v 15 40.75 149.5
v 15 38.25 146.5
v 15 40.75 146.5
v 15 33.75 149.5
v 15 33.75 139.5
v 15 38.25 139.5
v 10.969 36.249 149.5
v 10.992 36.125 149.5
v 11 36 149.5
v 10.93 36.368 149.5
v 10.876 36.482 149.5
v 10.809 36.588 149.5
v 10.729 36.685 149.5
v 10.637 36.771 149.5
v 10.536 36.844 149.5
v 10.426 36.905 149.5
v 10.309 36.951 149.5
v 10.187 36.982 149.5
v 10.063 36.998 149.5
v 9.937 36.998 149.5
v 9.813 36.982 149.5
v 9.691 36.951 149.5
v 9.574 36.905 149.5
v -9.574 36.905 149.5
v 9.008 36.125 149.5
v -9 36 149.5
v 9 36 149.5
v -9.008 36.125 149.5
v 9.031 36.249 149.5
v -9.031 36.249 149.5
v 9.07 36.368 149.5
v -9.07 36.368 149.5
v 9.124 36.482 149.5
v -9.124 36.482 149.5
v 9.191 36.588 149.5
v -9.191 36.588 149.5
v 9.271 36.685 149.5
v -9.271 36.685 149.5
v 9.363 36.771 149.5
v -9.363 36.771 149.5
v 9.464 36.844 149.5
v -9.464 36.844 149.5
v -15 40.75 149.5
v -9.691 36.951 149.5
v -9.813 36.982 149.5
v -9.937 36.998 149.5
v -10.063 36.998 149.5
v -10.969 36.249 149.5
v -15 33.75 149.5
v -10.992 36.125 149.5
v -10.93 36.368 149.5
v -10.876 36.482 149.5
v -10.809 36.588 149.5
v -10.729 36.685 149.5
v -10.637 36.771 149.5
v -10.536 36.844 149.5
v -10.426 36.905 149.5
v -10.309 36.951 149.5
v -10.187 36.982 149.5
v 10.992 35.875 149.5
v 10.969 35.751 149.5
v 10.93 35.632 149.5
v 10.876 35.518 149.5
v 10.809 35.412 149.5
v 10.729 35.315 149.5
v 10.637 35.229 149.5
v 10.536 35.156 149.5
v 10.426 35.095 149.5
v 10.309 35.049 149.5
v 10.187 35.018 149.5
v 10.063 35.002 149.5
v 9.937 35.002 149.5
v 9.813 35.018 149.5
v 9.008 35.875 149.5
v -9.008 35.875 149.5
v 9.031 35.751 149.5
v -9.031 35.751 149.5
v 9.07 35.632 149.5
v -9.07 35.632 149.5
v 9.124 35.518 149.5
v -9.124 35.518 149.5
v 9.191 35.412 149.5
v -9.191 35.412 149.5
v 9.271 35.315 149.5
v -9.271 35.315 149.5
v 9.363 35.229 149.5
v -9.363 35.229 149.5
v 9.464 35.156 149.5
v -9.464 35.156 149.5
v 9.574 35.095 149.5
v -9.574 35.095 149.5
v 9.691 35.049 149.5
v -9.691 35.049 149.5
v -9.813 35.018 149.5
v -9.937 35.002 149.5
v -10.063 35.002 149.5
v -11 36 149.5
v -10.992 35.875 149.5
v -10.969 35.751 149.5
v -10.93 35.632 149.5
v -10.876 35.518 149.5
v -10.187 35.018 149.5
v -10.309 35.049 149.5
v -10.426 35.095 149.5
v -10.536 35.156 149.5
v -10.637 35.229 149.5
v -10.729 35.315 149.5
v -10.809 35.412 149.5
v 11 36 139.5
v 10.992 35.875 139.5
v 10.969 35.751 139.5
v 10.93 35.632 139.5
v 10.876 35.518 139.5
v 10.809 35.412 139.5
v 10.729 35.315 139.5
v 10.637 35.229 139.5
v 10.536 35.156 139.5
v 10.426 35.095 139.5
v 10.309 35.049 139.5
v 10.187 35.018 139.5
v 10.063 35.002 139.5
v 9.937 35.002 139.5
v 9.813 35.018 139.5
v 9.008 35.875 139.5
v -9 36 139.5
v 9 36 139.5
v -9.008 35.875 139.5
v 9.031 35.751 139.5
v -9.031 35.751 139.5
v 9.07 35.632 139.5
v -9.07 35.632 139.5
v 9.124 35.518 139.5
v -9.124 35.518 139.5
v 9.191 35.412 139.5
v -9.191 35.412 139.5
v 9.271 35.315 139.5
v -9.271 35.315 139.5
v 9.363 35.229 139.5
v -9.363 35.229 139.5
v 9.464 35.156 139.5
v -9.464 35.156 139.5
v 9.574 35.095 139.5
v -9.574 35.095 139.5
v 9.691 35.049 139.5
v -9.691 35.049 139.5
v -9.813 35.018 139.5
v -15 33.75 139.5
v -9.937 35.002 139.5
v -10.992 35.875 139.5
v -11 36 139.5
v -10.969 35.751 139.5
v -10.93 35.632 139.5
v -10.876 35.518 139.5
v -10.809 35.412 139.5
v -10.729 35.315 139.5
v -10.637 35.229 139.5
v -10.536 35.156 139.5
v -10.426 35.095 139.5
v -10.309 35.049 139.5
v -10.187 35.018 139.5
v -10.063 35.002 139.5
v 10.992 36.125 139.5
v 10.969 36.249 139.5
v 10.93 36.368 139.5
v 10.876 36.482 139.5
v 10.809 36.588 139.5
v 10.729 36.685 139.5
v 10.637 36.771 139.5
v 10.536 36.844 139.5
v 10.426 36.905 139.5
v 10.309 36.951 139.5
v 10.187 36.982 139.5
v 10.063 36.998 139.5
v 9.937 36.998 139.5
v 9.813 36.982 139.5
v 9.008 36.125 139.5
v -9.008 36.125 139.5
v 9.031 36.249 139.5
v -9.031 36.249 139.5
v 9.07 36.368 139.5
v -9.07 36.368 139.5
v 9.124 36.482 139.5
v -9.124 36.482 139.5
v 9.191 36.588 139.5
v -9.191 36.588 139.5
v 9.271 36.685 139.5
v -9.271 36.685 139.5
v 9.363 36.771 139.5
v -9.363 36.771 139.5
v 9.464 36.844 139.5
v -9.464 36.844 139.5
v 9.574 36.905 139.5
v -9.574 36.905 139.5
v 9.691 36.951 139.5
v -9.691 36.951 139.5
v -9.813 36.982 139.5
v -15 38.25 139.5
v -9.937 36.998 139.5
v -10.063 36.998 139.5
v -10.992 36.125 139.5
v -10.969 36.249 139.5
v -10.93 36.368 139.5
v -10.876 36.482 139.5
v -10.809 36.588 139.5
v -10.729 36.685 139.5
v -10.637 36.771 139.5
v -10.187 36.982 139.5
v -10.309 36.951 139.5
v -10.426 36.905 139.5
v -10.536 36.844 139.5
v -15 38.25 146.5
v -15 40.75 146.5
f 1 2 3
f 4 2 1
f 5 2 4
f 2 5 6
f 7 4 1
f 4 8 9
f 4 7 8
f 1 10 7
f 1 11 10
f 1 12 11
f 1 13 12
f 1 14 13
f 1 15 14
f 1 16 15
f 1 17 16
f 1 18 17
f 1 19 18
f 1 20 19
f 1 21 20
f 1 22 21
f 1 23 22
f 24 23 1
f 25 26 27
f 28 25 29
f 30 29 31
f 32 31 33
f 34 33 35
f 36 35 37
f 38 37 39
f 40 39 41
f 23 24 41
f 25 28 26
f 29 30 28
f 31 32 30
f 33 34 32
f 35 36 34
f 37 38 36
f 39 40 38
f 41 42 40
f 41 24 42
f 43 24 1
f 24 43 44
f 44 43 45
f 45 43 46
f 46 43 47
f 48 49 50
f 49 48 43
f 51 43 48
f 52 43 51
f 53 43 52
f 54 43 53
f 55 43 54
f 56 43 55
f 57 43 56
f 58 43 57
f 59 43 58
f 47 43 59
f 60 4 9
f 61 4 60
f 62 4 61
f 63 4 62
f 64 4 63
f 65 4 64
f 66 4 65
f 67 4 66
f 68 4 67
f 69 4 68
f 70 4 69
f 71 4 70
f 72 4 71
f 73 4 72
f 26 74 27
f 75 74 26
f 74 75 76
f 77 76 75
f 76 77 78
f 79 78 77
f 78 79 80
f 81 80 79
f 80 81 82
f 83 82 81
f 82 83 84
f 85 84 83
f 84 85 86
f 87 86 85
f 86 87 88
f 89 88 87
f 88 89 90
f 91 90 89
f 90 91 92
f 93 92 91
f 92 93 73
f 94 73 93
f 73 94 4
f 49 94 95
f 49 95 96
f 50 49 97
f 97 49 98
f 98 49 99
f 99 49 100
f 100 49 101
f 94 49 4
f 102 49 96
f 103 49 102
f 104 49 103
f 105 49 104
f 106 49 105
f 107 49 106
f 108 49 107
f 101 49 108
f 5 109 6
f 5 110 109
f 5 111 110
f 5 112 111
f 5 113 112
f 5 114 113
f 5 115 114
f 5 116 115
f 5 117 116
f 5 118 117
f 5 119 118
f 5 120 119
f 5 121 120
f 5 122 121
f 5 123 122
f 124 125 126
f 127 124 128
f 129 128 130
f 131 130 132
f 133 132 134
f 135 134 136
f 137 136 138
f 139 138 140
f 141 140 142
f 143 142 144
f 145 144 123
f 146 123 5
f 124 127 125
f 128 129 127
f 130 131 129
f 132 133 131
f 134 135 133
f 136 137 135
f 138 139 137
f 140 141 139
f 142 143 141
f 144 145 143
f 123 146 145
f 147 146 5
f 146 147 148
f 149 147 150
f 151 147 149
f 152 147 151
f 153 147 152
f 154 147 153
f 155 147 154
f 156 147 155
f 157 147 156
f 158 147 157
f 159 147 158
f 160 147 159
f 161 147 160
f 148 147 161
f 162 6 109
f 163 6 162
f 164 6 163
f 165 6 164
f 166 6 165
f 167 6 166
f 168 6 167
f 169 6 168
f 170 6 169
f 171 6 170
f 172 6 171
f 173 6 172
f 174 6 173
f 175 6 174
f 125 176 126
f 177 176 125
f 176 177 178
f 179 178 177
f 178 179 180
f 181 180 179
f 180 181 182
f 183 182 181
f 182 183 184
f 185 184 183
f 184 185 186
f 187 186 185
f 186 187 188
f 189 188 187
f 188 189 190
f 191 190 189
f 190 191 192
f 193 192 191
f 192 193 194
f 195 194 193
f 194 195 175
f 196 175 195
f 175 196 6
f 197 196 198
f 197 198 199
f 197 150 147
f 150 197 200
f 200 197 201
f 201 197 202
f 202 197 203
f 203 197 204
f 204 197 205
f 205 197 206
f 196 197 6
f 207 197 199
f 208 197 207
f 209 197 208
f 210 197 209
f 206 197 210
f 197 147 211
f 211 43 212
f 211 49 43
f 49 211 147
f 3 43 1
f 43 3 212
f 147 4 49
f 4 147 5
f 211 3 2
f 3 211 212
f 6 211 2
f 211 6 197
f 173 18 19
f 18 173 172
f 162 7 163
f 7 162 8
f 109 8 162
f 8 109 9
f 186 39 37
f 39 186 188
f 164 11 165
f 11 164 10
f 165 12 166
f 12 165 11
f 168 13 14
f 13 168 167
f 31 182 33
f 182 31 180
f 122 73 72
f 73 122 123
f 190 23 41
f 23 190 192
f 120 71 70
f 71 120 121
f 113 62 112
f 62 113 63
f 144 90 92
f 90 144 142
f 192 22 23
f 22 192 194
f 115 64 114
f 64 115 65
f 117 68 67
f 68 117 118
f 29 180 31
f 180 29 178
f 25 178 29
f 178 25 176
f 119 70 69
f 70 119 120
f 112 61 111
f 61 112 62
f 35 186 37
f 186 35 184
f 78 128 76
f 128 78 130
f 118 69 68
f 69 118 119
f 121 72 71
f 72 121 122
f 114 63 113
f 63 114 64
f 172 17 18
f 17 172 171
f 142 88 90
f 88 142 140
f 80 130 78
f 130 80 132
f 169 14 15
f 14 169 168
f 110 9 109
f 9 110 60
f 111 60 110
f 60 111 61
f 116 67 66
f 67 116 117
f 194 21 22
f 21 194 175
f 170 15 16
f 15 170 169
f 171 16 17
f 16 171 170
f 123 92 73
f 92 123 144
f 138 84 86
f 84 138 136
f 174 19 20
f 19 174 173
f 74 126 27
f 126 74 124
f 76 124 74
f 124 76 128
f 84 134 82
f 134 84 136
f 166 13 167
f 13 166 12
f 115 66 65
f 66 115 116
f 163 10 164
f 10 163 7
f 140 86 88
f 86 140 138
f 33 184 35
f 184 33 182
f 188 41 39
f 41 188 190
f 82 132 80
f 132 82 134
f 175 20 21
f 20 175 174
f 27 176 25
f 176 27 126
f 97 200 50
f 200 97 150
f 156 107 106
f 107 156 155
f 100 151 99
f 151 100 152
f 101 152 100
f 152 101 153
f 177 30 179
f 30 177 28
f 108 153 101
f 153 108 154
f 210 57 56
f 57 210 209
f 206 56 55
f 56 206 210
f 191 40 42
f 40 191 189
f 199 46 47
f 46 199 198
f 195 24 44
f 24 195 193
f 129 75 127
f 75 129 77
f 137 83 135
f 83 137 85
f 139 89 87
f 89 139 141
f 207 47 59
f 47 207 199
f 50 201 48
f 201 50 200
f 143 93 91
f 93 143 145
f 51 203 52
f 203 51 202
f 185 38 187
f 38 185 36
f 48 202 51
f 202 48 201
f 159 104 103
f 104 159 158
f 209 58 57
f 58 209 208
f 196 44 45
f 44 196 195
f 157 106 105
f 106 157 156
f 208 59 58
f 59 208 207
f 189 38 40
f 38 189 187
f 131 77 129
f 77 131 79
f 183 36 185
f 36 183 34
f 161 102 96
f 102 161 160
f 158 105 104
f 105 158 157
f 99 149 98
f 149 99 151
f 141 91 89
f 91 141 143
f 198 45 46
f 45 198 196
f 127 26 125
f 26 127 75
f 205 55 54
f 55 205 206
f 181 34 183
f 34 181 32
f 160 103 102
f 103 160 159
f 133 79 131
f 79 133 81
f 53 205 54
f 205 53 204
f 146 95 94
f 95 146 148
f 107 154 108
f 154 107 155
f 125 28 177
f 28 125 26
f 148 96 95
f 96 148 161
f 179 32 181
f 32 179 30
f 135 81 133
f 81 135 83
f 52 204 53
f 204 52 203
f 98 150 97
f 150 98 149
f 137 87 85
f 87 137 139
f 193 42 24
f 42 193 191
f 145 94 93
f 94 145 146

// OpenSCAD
// file: local_modules/scad-utils/mirror.scad
// Copyright (c) 2013 Oskar Linde. All rights reserved.
// License: BSD
//
// This library contains simple mirroring functions
//
// mirror_x()
// mirror_y()
// mirror_z()


module mirror_x() {
  union() {
    child();
    scale([-1,1,1]) child();
  }
}

module mirror_y() {
  union() {
    child();
    scale([1,-1,1]) child();
  }
}

module mirror_z() {
  union() {
    child();
    scale([1,1,-1]) child();
  }
}
// file: local_modules/opiz_mount.scad
include <scad-utils/mirror.scad>

OPIZ_HOLES_BETWEEN_X=40.5;
OPIZ_HOLES_BETWEEN_Y=42;

OPIZ_MOUNT_X=4;
OPIZ_MOUNT_Z=1.5;
OPIZ_MOUNT_Y=OPIZ_MOUNT_X+4;

module opiz_mount_holes() {
  mirror_x()
  mirror_y()
  translate([OPIZ_HOLES_BETWEEN_X/2, OPIZ_HOLES_BETWEEN_Y/2, -3]) 
  cylinder(d=1.8, h=10, center=!true);
}

module opiz_mount_base() {
  mirror_x()
  mirror_y()
  translate([OPIZ_HOLES_BETWEEN_X/2, OPIZ_HOLES_BETWEEN_Y/2, 0]){
    // trapezoid
    hull(){
      // top
      translate([0, 0, OPIZ_MOUNT_Z])
      linear_extrude(height=0.01, center=!true, convexity=10, twist=0)
      square(size=[OPIZ_MOUNT_X, OPIZ_MOUNT_X], center=true);

      // bottom
      linear_extrude(height=0.01, center=!true, convexity=10, twist=0)
      square(size=[OPIZ_MOUNT_X, OPIZ_MOUNT_Y], center=true);
    }
  }
}

module opiz_mount(holes=false) {
  if (holes){
    opiz_mount_holes();
  }else{
    opiz_mount_base();
  }
}
// file: local_modules/lcd.scad
LCD_X=76;
LCD_Y=1.5;
LCD_Z=138;
LCD_DISP_X=LCD_X - 1.5 * 2;
LCD_DISP_Z_OFFSET_FROM_BOTTOM=6;
LCD_DISP_Z=LCD_Z-LCD_DISP_Z_OFFSET_FROM_BOTTOM - 1.5;

module lcd(margin=0, draw_display_region=false) {
  translate([0, 0, LCD_Z/2]){
    cube(size=[LCD_X+margin, LCD_Y+margin, LCD_Z+margin], center=true);

    if(draw_display_region){
      translate([0, 0, -(LCD_Z - LCD_DISP_Z)/2 + LCD_DISP_Z_OFFSET_FROM_BOTTOM]) 
      color("green", 0.5)
      cube(size=[LCD_DISP_X, LCD_Y, LCD_DISP_Z], center=true);
    }
  }
}
// file: scad-utils/morphology.scad
// Copyright (c) 2013 Oskar Linde. All rights reserved.
// License: BSD
//
// This library contains basic 2D morphology operations
//
// outset(d=1)            - creates a polygon at an offset d outside a 2D shape
// inset(d=1)             - creates a polygon at an offset d inside a 2D shape
// fillet(r=1)            - adds fillets of radius r to all concave corners of a 2D shape
// rounding(r=1)          - adds rounding to all convex corners of a 2D shape
// shell(d,center=false)  - makes a shell of width d along the edge of a 2D shape
//                        - positive values of d places the shell on the outside
//                        - negative values of d places the shell on the inside
//                        - center=true and positive d places the shell centered on the edge

module outset(d=1) {
	// Bug workaround for older OpenSCAD versions
	if (version_num() < 20130424) render() outset_extruded(d) children();
	else minkowski() {
		circle(r=d);
		children();
	}
}

module outset_extruded(d=1) {
   projection(cut=true) minkowski() {
        cylinder(r=d);
        linear_extrude(center=true) children();
   }
}

module inset(d=1) {
	 render() inverse() outset(d=d) inverse() children();
}

module fillet(r=1) {
	inset(d=r) render() outset(d=r) children();
}

module rounding(r=1) {
	outset(d=r) inset(d=r) children();
}

module shell(d,center=false) {
	if (center && d > 0) {
		difference() {
			outset(d=d/2) children();
			inset(d=d/2) children();
		}
	}
	if (!center && d > 0) {
		difference() {
			outset(d=d) children();
			children();
		}
	}
	if (!center && d < 0) {
		difference() {
			children();
			inset(d=-d) children();
		}
	}
	if (d == 0) children();
}


// Below are for internal use only

module inverse() {
	difference() {
		square(1e5,center=true);
		children();
	}
}


// TEST CODE

use <mirror.scad>

module arrow(l=1,w=.6,t=0.15) {
	mirror_y() polygon([[0,0],[l,0],[l-w/2,w/2],[l-w/2-sqrt(2)*t,w/2],[l-t/2-sqrt(2)*t,t/2],[0,t/2]]);
}

module shape() {
	polygon([[0,0],[1,0],[1.5,1],[2.5,1],[2,-1],[0,-1]]);
}

if(0) assign($fn=32) {

	for (p = [0:10*3-1]) assign(o=floor(p/3)) {
		translate([(p%3)*2.5,-o*3]) {
			//%if (p % 3 == 1) translate([0,0,1]) shape();
			if (p % 3 == 0) shape();
			if (p % 3 == 1) translate([0.6,0]) arrow();
			if (p % 3 == 2) {
				if (o == 0) inset(d=0.3) shape();
				if (o == 1) outset(d=0.3) shape();
				if (o == 2) rounding(r=0.3) shape();
				if (o == 3) fillet(r=0.3) shape();
				if (o == 4) shell(d=0.3) shape();
				if (o == 5) shell(d=-0.3) shape();
				if (o == 6) shell(d=0.3,center=true) shape();
				if (o == 7) rounding(r=0.3) fillet(r=0.3) shape();
				if (o == 8) shell(d=0.3,center=true) fillet(r=0.3) rounding(r=0.3) shape();
				if (o == 9) shell(d=-0.3) fillet(r=0.3) rounding(r=0.3) shape();
			}
		}
	}
}
// file: scad-utils/mirror.scad
// Copyright (c) 2013 Oskar Linde. All rights reserved.
// License: BSD
//
// This library contains simple mirroring functions
//
// mirror_x()
// mirror_y()
// mirror_z()


module mirror_x() {
  union() {
    child();
    scale([-1,1,1]) child();
  }
}

module mirror_y() {
  union() {
    child();
    scale([1,-1,1]) child();
  }
}

module mirror_z() {
  union() {
    child();
    scale([1,1,-1]) child();
  }
}
// file: _kagedourou_bottom_display_holder.scad
include <./_kagedourou_top.scad>
include <./_kagedourou_bottom_panel.scad>

KD_BOTTOM_DISP_HOLDER_X=30;
KD_BOTTOM_DISP_HOLDER_Y=7;
KD_BOTTOM_DISP_HOLDER_Z=10;

module kagedourou_bottom_display_holder() {
  translate([0, 0, KD_BOTTOM_PANEL_ZPOS]){
    difference() {
      translate([0, KD_BOTTOM_PANEL_Y/2 - KD_BOTTOM_DISP_HOLDER_Y/2 + LCD_Y, 0])
      translate([0, 0, -KD_BOTTOM_DISP_HOLDER_Z/2])
      difference() {
        cube(size=[KD_BOTTOM_DISP_HOLDER_X, KD_BOTTOM_DISP_HOLDER_Y, KD_BOTTOM_DISP_HOLDER_Z], center=true);

        // hold LCD with this edge
        translate([0, KD_BOTTOM_DISP_HOLDER_Y-2.5, -3]) 
        cube(size=[KD_BOTTOM_DISP_HOLDER_X+1, KD_BOTTOM_DISP_HOLDER_Y, KD_BOTTOM_DISP_HOLDER_Z], center=true);
      }

      // screw holes
      mirror_x()
      translate([KD_BOTTOM_DISP_HOLDER_SCREW_XPOS, KD_TOP_X/2 - KD_FRAME_T/2 - KD_BOTTOM_DISP_HOLDER_SCREW_YPOS/2, 0])
      cylinder(d=2, h=KD_BOTTOM_DISP_HOLDER_Z*3, center=true);
    }
  }
}
// file: _kagedourou_bottom_panel.scad
include <./_kagedourou_top.scad>
include <./_kagedourou_bottom_frame_b.scad>
include <./local_modules/opiz_mount.scad>

KD_BOTTOM_PANEL_X=KD_TOP_X - KD_FRAME_T - LCD_Y*2 - 0.5;
KD_BOTTOM_PANEL_Y=KD_BOTTOM_PANEL_X;
KD_BOTTOM_PANEL_Z=1;
KD_BOTTOM_PANEL_ZPOS=KD_BOTTOM_FRAME_ZPOS + KD_FRAME_T/2;

KD_MAIN_LIGHT_BAR_SCREW_XPOS=10;

KD_BOTTOM_DISP_HOLDER_SCREW_XPOS=10;
KD_BOTTOM_DISP_HOLDER_SCREW_YPOS=10;


module kagedourou_bottom_panel_base() {
  linear_extrude(height=KD_BOTTOM_PANEL_Z, center=!true, convexity=10, twist=0)
  difference(){
    rounding(r=2)
    square(size=[KD_BOTTOM_PANEL_X, KD_BOTTOM_PANEL_Y], center=true);

    // holes for screws to bottom_frame_b
    for (i=[1:3]) {
      rotate([0, 0, 90*i]) 
      translate([0, KD_TOP_Y/2 - KD_FRAME_T/2 - 10/2, 0]) 
      circle(d=2.5);
    }

    // holes for bottom_display_holder 
    mirror_x()
    translate([KD_BOTTOM_DISP_HOLDER_SCREW_XPOS, KD_TOP_X/2 - KD_FRAME_T/2 - KD_BOTTOM_DISP_HOLDER_SCREW_YPOS/2, 0]) 
    circle(d=2.5);

    // holes for main_light_bar
    translate([0, KD_MAIN_LIGHT_BAR_SCREW_XPOS, 0]) 
    circle(d=2.5);

    // holes for cabling
    translate([0, KD_BOTTOM_PANEL_Y/2-10/2-8, 0]) 
    rounding(r=1)
    square(size=[20, 10], center=true);
    
    // center space
    translate([0, -10, 0]) 
    circle(d=8);
  }
}


module _kd_opiz_mount_offset() {
  KD_OPIZ_MOUNT_OFFSET_X=OPIZ_HOLES_BETWEEN_X/2-10;
  KD_OPIZ_MOUNT_OFFSET_Y=-5;

  translate([KD_OPIZ_MOUNT_OFFSET_X, KD_OPIZ_MOUNT_OFFSET_Y, KD_BOTTOM_PANEL_Z])
  children(0);
}

module kagedourou_bottom_panel() {
  translate([0, 0, KD_BOTTOM_PANEL_ZPOS]){
    difference(){
      union(){
        kagedourou_bottom_panel_base();

        _kd_opiz_mount_offset()
        opiz_mount();
      }

      _kd_opiz_mount_offset()
      opiz_mount(holes=true);
    }
  }
}
// file: _kagedourou_side_frame.scad
include <./_kagedourou_top.scad>

KD_SIDE_FRAME_Z=155;

module kagedourou_side_frame() {
  translate([KD_TOP_X/2 - KD_FRAME_T/2, KD_TOP_Y/2 - KD_FRAME_T/2, KD_FRAME_T]) 
  linear_extrude(height=KD_SIDE_FRAME_Z, center=!true, convexity=10, twist=0)
  difference(){
    square(size=[KD_FRAME_T, KD_FRAME_T], center=true);

    // inner space
    rotate([0, 0, 180])
    square(size=[KD_FRAME_INNER_T, KD_FRAME_INNER_T], center=!true);
  }
}
// file: _kagedourou_bottom_frame_b.scad
include <./_kagedourou_top.scad>

$fn=50;

KD_BOTTOM_FRAME_ZPOS=KD_FRAME_T + LCD_DISP_Z - LCD_DISP_Z_OFFSET_FROM_BOTTOM + KD_FRAME_T;

module kagedourou_bottom_frame_b() {
  // align base XY-plane to the bottom edge of LCD's visible area
  translate([0, 0, KD_BOTTOM_FRAME_ZPOS]){
    // %color("red", 0.05) square(size=[100, 100], center=true);

    rotate([0, 0, 90]) 
    translate([0, KD_TOP_Y/2 - KD_FRAME_INNER_T/2, 0]) {
      cube(size=[KD_TOP_X - KD_FRAME_T*2, KD_FRAME_INNER_T, KD_FRAME_T], center=true);

      // tab for bottom panel
      TAB_H=10;
      TAB_W=10;
      TAB_Z=4;

      translate([0, 0, KD_FRAME_T/2 - TAB_Z]) 
      linear_extrude(height=TAB_Z, center=!true, convexity=10, twist=0)
      translate([0, -KD_FRAME_INNER_T/2 - TAB_H/2, 0])
      difference() {
        square(size=[10, TAB_H], center=true);

        // screw hole
        circle(d=2);      
      }
    }
  }
}
// file: _kagedourou_top.scad
include <scad-utils/mirror.scad>
include <scad-utils/morphology.scad>

include <./local_modules/lcd.scad>


module lcd_for_top(){
  translate([0, KD_TOP_Y/2 - LCD_Y/2 - (KD_FRAME_INNER_T + 0.5), LCD_Z + KD_FRAME_T - 2]) 
  rotate([180, 0, 0]) 
  lcd(draw_display_region=true);
}

KD_FRAME_T=10;
KD_FRAME_INNER_T=5;

KD_TOP_X=LCD_X-2*2+KD_FRAME_T*2;
KD_TOP_Y=KD_TOP_X;
echo(str("KD_TOP_X=", KD_TOP_X));
echo(str("KD_TOP_Y=", KD_TOP_Y));

KD_TOP_DISP_HOLDER_X=10;
KD_TOP_DISP_HOLDER_Y=4*2;

module kagedourou_top_display_holder(args) {
  translate([0, KD_TOP_Y/2 - KD_FRAME_INNER_T, 0]){
    difference() {

      linear_extrude(height=KD_FRAME_T, center=!true, convexity=10, twist=0)
      square(size=[KD_TOP_DISP_HOLDER_X, KD_TOP_DISP_HOLDER_Y], center=true);

      translate([0, 0, KD_FRAME_T - 2]) 
      linear_extrude(height=KD_FRAME_T, center=!true, convexity=10, twist=0)
      square(size=[KD_TOP_DISP_HOLDER_X, (LCD_Y + 1) * 2], center=true);
    }

  }
}

module kagedourou_top() {
  difference() {
    linear_extrude(height=KD_FRAME_T, center=!true, convexity=10, twist=0)
    difference(){
      square(size=[KD_TOP_X, KD_TOP_Y], center=true);

      // top window
      offset(delta=-KD_FRAME_T)
      square(size=[KD_TOP_X, KD_TOP_Y], center=true);
    }

    translate([0, 0, 5]) 
    linear_extrude(height=KD_FRAME_T, center=!true, convexity=10, twist=0)
    offset(delta=(KD_FRAME_T - KD_FRAME_INNER_T))
    offset(delta=-KD_FRAME_T)
    square(size=[KD_TOP_X, KD_TOP_Y], center=true);
  }

  kagedourou_top_display_holder();
}

// kagedourou_top();
// main file
include <./_kagedourou_top.scad>
include <./_kagedourou_bottom_frame_b.scad>
include <./_kagedourou_side_frame.scad>
include <./_kagedourou_bottom_panel.scad>
include <./_kagedourou_bottom_display_holder.scad>

$fn=50;

%
lcd_for_top();
%
kagedourou_top();
%
kagedourou_side_frame();
%
kagedourou_bottom_frame_b();
%
kagedourou_bottom_panel();

kagedourou_bottom_display_holder();
